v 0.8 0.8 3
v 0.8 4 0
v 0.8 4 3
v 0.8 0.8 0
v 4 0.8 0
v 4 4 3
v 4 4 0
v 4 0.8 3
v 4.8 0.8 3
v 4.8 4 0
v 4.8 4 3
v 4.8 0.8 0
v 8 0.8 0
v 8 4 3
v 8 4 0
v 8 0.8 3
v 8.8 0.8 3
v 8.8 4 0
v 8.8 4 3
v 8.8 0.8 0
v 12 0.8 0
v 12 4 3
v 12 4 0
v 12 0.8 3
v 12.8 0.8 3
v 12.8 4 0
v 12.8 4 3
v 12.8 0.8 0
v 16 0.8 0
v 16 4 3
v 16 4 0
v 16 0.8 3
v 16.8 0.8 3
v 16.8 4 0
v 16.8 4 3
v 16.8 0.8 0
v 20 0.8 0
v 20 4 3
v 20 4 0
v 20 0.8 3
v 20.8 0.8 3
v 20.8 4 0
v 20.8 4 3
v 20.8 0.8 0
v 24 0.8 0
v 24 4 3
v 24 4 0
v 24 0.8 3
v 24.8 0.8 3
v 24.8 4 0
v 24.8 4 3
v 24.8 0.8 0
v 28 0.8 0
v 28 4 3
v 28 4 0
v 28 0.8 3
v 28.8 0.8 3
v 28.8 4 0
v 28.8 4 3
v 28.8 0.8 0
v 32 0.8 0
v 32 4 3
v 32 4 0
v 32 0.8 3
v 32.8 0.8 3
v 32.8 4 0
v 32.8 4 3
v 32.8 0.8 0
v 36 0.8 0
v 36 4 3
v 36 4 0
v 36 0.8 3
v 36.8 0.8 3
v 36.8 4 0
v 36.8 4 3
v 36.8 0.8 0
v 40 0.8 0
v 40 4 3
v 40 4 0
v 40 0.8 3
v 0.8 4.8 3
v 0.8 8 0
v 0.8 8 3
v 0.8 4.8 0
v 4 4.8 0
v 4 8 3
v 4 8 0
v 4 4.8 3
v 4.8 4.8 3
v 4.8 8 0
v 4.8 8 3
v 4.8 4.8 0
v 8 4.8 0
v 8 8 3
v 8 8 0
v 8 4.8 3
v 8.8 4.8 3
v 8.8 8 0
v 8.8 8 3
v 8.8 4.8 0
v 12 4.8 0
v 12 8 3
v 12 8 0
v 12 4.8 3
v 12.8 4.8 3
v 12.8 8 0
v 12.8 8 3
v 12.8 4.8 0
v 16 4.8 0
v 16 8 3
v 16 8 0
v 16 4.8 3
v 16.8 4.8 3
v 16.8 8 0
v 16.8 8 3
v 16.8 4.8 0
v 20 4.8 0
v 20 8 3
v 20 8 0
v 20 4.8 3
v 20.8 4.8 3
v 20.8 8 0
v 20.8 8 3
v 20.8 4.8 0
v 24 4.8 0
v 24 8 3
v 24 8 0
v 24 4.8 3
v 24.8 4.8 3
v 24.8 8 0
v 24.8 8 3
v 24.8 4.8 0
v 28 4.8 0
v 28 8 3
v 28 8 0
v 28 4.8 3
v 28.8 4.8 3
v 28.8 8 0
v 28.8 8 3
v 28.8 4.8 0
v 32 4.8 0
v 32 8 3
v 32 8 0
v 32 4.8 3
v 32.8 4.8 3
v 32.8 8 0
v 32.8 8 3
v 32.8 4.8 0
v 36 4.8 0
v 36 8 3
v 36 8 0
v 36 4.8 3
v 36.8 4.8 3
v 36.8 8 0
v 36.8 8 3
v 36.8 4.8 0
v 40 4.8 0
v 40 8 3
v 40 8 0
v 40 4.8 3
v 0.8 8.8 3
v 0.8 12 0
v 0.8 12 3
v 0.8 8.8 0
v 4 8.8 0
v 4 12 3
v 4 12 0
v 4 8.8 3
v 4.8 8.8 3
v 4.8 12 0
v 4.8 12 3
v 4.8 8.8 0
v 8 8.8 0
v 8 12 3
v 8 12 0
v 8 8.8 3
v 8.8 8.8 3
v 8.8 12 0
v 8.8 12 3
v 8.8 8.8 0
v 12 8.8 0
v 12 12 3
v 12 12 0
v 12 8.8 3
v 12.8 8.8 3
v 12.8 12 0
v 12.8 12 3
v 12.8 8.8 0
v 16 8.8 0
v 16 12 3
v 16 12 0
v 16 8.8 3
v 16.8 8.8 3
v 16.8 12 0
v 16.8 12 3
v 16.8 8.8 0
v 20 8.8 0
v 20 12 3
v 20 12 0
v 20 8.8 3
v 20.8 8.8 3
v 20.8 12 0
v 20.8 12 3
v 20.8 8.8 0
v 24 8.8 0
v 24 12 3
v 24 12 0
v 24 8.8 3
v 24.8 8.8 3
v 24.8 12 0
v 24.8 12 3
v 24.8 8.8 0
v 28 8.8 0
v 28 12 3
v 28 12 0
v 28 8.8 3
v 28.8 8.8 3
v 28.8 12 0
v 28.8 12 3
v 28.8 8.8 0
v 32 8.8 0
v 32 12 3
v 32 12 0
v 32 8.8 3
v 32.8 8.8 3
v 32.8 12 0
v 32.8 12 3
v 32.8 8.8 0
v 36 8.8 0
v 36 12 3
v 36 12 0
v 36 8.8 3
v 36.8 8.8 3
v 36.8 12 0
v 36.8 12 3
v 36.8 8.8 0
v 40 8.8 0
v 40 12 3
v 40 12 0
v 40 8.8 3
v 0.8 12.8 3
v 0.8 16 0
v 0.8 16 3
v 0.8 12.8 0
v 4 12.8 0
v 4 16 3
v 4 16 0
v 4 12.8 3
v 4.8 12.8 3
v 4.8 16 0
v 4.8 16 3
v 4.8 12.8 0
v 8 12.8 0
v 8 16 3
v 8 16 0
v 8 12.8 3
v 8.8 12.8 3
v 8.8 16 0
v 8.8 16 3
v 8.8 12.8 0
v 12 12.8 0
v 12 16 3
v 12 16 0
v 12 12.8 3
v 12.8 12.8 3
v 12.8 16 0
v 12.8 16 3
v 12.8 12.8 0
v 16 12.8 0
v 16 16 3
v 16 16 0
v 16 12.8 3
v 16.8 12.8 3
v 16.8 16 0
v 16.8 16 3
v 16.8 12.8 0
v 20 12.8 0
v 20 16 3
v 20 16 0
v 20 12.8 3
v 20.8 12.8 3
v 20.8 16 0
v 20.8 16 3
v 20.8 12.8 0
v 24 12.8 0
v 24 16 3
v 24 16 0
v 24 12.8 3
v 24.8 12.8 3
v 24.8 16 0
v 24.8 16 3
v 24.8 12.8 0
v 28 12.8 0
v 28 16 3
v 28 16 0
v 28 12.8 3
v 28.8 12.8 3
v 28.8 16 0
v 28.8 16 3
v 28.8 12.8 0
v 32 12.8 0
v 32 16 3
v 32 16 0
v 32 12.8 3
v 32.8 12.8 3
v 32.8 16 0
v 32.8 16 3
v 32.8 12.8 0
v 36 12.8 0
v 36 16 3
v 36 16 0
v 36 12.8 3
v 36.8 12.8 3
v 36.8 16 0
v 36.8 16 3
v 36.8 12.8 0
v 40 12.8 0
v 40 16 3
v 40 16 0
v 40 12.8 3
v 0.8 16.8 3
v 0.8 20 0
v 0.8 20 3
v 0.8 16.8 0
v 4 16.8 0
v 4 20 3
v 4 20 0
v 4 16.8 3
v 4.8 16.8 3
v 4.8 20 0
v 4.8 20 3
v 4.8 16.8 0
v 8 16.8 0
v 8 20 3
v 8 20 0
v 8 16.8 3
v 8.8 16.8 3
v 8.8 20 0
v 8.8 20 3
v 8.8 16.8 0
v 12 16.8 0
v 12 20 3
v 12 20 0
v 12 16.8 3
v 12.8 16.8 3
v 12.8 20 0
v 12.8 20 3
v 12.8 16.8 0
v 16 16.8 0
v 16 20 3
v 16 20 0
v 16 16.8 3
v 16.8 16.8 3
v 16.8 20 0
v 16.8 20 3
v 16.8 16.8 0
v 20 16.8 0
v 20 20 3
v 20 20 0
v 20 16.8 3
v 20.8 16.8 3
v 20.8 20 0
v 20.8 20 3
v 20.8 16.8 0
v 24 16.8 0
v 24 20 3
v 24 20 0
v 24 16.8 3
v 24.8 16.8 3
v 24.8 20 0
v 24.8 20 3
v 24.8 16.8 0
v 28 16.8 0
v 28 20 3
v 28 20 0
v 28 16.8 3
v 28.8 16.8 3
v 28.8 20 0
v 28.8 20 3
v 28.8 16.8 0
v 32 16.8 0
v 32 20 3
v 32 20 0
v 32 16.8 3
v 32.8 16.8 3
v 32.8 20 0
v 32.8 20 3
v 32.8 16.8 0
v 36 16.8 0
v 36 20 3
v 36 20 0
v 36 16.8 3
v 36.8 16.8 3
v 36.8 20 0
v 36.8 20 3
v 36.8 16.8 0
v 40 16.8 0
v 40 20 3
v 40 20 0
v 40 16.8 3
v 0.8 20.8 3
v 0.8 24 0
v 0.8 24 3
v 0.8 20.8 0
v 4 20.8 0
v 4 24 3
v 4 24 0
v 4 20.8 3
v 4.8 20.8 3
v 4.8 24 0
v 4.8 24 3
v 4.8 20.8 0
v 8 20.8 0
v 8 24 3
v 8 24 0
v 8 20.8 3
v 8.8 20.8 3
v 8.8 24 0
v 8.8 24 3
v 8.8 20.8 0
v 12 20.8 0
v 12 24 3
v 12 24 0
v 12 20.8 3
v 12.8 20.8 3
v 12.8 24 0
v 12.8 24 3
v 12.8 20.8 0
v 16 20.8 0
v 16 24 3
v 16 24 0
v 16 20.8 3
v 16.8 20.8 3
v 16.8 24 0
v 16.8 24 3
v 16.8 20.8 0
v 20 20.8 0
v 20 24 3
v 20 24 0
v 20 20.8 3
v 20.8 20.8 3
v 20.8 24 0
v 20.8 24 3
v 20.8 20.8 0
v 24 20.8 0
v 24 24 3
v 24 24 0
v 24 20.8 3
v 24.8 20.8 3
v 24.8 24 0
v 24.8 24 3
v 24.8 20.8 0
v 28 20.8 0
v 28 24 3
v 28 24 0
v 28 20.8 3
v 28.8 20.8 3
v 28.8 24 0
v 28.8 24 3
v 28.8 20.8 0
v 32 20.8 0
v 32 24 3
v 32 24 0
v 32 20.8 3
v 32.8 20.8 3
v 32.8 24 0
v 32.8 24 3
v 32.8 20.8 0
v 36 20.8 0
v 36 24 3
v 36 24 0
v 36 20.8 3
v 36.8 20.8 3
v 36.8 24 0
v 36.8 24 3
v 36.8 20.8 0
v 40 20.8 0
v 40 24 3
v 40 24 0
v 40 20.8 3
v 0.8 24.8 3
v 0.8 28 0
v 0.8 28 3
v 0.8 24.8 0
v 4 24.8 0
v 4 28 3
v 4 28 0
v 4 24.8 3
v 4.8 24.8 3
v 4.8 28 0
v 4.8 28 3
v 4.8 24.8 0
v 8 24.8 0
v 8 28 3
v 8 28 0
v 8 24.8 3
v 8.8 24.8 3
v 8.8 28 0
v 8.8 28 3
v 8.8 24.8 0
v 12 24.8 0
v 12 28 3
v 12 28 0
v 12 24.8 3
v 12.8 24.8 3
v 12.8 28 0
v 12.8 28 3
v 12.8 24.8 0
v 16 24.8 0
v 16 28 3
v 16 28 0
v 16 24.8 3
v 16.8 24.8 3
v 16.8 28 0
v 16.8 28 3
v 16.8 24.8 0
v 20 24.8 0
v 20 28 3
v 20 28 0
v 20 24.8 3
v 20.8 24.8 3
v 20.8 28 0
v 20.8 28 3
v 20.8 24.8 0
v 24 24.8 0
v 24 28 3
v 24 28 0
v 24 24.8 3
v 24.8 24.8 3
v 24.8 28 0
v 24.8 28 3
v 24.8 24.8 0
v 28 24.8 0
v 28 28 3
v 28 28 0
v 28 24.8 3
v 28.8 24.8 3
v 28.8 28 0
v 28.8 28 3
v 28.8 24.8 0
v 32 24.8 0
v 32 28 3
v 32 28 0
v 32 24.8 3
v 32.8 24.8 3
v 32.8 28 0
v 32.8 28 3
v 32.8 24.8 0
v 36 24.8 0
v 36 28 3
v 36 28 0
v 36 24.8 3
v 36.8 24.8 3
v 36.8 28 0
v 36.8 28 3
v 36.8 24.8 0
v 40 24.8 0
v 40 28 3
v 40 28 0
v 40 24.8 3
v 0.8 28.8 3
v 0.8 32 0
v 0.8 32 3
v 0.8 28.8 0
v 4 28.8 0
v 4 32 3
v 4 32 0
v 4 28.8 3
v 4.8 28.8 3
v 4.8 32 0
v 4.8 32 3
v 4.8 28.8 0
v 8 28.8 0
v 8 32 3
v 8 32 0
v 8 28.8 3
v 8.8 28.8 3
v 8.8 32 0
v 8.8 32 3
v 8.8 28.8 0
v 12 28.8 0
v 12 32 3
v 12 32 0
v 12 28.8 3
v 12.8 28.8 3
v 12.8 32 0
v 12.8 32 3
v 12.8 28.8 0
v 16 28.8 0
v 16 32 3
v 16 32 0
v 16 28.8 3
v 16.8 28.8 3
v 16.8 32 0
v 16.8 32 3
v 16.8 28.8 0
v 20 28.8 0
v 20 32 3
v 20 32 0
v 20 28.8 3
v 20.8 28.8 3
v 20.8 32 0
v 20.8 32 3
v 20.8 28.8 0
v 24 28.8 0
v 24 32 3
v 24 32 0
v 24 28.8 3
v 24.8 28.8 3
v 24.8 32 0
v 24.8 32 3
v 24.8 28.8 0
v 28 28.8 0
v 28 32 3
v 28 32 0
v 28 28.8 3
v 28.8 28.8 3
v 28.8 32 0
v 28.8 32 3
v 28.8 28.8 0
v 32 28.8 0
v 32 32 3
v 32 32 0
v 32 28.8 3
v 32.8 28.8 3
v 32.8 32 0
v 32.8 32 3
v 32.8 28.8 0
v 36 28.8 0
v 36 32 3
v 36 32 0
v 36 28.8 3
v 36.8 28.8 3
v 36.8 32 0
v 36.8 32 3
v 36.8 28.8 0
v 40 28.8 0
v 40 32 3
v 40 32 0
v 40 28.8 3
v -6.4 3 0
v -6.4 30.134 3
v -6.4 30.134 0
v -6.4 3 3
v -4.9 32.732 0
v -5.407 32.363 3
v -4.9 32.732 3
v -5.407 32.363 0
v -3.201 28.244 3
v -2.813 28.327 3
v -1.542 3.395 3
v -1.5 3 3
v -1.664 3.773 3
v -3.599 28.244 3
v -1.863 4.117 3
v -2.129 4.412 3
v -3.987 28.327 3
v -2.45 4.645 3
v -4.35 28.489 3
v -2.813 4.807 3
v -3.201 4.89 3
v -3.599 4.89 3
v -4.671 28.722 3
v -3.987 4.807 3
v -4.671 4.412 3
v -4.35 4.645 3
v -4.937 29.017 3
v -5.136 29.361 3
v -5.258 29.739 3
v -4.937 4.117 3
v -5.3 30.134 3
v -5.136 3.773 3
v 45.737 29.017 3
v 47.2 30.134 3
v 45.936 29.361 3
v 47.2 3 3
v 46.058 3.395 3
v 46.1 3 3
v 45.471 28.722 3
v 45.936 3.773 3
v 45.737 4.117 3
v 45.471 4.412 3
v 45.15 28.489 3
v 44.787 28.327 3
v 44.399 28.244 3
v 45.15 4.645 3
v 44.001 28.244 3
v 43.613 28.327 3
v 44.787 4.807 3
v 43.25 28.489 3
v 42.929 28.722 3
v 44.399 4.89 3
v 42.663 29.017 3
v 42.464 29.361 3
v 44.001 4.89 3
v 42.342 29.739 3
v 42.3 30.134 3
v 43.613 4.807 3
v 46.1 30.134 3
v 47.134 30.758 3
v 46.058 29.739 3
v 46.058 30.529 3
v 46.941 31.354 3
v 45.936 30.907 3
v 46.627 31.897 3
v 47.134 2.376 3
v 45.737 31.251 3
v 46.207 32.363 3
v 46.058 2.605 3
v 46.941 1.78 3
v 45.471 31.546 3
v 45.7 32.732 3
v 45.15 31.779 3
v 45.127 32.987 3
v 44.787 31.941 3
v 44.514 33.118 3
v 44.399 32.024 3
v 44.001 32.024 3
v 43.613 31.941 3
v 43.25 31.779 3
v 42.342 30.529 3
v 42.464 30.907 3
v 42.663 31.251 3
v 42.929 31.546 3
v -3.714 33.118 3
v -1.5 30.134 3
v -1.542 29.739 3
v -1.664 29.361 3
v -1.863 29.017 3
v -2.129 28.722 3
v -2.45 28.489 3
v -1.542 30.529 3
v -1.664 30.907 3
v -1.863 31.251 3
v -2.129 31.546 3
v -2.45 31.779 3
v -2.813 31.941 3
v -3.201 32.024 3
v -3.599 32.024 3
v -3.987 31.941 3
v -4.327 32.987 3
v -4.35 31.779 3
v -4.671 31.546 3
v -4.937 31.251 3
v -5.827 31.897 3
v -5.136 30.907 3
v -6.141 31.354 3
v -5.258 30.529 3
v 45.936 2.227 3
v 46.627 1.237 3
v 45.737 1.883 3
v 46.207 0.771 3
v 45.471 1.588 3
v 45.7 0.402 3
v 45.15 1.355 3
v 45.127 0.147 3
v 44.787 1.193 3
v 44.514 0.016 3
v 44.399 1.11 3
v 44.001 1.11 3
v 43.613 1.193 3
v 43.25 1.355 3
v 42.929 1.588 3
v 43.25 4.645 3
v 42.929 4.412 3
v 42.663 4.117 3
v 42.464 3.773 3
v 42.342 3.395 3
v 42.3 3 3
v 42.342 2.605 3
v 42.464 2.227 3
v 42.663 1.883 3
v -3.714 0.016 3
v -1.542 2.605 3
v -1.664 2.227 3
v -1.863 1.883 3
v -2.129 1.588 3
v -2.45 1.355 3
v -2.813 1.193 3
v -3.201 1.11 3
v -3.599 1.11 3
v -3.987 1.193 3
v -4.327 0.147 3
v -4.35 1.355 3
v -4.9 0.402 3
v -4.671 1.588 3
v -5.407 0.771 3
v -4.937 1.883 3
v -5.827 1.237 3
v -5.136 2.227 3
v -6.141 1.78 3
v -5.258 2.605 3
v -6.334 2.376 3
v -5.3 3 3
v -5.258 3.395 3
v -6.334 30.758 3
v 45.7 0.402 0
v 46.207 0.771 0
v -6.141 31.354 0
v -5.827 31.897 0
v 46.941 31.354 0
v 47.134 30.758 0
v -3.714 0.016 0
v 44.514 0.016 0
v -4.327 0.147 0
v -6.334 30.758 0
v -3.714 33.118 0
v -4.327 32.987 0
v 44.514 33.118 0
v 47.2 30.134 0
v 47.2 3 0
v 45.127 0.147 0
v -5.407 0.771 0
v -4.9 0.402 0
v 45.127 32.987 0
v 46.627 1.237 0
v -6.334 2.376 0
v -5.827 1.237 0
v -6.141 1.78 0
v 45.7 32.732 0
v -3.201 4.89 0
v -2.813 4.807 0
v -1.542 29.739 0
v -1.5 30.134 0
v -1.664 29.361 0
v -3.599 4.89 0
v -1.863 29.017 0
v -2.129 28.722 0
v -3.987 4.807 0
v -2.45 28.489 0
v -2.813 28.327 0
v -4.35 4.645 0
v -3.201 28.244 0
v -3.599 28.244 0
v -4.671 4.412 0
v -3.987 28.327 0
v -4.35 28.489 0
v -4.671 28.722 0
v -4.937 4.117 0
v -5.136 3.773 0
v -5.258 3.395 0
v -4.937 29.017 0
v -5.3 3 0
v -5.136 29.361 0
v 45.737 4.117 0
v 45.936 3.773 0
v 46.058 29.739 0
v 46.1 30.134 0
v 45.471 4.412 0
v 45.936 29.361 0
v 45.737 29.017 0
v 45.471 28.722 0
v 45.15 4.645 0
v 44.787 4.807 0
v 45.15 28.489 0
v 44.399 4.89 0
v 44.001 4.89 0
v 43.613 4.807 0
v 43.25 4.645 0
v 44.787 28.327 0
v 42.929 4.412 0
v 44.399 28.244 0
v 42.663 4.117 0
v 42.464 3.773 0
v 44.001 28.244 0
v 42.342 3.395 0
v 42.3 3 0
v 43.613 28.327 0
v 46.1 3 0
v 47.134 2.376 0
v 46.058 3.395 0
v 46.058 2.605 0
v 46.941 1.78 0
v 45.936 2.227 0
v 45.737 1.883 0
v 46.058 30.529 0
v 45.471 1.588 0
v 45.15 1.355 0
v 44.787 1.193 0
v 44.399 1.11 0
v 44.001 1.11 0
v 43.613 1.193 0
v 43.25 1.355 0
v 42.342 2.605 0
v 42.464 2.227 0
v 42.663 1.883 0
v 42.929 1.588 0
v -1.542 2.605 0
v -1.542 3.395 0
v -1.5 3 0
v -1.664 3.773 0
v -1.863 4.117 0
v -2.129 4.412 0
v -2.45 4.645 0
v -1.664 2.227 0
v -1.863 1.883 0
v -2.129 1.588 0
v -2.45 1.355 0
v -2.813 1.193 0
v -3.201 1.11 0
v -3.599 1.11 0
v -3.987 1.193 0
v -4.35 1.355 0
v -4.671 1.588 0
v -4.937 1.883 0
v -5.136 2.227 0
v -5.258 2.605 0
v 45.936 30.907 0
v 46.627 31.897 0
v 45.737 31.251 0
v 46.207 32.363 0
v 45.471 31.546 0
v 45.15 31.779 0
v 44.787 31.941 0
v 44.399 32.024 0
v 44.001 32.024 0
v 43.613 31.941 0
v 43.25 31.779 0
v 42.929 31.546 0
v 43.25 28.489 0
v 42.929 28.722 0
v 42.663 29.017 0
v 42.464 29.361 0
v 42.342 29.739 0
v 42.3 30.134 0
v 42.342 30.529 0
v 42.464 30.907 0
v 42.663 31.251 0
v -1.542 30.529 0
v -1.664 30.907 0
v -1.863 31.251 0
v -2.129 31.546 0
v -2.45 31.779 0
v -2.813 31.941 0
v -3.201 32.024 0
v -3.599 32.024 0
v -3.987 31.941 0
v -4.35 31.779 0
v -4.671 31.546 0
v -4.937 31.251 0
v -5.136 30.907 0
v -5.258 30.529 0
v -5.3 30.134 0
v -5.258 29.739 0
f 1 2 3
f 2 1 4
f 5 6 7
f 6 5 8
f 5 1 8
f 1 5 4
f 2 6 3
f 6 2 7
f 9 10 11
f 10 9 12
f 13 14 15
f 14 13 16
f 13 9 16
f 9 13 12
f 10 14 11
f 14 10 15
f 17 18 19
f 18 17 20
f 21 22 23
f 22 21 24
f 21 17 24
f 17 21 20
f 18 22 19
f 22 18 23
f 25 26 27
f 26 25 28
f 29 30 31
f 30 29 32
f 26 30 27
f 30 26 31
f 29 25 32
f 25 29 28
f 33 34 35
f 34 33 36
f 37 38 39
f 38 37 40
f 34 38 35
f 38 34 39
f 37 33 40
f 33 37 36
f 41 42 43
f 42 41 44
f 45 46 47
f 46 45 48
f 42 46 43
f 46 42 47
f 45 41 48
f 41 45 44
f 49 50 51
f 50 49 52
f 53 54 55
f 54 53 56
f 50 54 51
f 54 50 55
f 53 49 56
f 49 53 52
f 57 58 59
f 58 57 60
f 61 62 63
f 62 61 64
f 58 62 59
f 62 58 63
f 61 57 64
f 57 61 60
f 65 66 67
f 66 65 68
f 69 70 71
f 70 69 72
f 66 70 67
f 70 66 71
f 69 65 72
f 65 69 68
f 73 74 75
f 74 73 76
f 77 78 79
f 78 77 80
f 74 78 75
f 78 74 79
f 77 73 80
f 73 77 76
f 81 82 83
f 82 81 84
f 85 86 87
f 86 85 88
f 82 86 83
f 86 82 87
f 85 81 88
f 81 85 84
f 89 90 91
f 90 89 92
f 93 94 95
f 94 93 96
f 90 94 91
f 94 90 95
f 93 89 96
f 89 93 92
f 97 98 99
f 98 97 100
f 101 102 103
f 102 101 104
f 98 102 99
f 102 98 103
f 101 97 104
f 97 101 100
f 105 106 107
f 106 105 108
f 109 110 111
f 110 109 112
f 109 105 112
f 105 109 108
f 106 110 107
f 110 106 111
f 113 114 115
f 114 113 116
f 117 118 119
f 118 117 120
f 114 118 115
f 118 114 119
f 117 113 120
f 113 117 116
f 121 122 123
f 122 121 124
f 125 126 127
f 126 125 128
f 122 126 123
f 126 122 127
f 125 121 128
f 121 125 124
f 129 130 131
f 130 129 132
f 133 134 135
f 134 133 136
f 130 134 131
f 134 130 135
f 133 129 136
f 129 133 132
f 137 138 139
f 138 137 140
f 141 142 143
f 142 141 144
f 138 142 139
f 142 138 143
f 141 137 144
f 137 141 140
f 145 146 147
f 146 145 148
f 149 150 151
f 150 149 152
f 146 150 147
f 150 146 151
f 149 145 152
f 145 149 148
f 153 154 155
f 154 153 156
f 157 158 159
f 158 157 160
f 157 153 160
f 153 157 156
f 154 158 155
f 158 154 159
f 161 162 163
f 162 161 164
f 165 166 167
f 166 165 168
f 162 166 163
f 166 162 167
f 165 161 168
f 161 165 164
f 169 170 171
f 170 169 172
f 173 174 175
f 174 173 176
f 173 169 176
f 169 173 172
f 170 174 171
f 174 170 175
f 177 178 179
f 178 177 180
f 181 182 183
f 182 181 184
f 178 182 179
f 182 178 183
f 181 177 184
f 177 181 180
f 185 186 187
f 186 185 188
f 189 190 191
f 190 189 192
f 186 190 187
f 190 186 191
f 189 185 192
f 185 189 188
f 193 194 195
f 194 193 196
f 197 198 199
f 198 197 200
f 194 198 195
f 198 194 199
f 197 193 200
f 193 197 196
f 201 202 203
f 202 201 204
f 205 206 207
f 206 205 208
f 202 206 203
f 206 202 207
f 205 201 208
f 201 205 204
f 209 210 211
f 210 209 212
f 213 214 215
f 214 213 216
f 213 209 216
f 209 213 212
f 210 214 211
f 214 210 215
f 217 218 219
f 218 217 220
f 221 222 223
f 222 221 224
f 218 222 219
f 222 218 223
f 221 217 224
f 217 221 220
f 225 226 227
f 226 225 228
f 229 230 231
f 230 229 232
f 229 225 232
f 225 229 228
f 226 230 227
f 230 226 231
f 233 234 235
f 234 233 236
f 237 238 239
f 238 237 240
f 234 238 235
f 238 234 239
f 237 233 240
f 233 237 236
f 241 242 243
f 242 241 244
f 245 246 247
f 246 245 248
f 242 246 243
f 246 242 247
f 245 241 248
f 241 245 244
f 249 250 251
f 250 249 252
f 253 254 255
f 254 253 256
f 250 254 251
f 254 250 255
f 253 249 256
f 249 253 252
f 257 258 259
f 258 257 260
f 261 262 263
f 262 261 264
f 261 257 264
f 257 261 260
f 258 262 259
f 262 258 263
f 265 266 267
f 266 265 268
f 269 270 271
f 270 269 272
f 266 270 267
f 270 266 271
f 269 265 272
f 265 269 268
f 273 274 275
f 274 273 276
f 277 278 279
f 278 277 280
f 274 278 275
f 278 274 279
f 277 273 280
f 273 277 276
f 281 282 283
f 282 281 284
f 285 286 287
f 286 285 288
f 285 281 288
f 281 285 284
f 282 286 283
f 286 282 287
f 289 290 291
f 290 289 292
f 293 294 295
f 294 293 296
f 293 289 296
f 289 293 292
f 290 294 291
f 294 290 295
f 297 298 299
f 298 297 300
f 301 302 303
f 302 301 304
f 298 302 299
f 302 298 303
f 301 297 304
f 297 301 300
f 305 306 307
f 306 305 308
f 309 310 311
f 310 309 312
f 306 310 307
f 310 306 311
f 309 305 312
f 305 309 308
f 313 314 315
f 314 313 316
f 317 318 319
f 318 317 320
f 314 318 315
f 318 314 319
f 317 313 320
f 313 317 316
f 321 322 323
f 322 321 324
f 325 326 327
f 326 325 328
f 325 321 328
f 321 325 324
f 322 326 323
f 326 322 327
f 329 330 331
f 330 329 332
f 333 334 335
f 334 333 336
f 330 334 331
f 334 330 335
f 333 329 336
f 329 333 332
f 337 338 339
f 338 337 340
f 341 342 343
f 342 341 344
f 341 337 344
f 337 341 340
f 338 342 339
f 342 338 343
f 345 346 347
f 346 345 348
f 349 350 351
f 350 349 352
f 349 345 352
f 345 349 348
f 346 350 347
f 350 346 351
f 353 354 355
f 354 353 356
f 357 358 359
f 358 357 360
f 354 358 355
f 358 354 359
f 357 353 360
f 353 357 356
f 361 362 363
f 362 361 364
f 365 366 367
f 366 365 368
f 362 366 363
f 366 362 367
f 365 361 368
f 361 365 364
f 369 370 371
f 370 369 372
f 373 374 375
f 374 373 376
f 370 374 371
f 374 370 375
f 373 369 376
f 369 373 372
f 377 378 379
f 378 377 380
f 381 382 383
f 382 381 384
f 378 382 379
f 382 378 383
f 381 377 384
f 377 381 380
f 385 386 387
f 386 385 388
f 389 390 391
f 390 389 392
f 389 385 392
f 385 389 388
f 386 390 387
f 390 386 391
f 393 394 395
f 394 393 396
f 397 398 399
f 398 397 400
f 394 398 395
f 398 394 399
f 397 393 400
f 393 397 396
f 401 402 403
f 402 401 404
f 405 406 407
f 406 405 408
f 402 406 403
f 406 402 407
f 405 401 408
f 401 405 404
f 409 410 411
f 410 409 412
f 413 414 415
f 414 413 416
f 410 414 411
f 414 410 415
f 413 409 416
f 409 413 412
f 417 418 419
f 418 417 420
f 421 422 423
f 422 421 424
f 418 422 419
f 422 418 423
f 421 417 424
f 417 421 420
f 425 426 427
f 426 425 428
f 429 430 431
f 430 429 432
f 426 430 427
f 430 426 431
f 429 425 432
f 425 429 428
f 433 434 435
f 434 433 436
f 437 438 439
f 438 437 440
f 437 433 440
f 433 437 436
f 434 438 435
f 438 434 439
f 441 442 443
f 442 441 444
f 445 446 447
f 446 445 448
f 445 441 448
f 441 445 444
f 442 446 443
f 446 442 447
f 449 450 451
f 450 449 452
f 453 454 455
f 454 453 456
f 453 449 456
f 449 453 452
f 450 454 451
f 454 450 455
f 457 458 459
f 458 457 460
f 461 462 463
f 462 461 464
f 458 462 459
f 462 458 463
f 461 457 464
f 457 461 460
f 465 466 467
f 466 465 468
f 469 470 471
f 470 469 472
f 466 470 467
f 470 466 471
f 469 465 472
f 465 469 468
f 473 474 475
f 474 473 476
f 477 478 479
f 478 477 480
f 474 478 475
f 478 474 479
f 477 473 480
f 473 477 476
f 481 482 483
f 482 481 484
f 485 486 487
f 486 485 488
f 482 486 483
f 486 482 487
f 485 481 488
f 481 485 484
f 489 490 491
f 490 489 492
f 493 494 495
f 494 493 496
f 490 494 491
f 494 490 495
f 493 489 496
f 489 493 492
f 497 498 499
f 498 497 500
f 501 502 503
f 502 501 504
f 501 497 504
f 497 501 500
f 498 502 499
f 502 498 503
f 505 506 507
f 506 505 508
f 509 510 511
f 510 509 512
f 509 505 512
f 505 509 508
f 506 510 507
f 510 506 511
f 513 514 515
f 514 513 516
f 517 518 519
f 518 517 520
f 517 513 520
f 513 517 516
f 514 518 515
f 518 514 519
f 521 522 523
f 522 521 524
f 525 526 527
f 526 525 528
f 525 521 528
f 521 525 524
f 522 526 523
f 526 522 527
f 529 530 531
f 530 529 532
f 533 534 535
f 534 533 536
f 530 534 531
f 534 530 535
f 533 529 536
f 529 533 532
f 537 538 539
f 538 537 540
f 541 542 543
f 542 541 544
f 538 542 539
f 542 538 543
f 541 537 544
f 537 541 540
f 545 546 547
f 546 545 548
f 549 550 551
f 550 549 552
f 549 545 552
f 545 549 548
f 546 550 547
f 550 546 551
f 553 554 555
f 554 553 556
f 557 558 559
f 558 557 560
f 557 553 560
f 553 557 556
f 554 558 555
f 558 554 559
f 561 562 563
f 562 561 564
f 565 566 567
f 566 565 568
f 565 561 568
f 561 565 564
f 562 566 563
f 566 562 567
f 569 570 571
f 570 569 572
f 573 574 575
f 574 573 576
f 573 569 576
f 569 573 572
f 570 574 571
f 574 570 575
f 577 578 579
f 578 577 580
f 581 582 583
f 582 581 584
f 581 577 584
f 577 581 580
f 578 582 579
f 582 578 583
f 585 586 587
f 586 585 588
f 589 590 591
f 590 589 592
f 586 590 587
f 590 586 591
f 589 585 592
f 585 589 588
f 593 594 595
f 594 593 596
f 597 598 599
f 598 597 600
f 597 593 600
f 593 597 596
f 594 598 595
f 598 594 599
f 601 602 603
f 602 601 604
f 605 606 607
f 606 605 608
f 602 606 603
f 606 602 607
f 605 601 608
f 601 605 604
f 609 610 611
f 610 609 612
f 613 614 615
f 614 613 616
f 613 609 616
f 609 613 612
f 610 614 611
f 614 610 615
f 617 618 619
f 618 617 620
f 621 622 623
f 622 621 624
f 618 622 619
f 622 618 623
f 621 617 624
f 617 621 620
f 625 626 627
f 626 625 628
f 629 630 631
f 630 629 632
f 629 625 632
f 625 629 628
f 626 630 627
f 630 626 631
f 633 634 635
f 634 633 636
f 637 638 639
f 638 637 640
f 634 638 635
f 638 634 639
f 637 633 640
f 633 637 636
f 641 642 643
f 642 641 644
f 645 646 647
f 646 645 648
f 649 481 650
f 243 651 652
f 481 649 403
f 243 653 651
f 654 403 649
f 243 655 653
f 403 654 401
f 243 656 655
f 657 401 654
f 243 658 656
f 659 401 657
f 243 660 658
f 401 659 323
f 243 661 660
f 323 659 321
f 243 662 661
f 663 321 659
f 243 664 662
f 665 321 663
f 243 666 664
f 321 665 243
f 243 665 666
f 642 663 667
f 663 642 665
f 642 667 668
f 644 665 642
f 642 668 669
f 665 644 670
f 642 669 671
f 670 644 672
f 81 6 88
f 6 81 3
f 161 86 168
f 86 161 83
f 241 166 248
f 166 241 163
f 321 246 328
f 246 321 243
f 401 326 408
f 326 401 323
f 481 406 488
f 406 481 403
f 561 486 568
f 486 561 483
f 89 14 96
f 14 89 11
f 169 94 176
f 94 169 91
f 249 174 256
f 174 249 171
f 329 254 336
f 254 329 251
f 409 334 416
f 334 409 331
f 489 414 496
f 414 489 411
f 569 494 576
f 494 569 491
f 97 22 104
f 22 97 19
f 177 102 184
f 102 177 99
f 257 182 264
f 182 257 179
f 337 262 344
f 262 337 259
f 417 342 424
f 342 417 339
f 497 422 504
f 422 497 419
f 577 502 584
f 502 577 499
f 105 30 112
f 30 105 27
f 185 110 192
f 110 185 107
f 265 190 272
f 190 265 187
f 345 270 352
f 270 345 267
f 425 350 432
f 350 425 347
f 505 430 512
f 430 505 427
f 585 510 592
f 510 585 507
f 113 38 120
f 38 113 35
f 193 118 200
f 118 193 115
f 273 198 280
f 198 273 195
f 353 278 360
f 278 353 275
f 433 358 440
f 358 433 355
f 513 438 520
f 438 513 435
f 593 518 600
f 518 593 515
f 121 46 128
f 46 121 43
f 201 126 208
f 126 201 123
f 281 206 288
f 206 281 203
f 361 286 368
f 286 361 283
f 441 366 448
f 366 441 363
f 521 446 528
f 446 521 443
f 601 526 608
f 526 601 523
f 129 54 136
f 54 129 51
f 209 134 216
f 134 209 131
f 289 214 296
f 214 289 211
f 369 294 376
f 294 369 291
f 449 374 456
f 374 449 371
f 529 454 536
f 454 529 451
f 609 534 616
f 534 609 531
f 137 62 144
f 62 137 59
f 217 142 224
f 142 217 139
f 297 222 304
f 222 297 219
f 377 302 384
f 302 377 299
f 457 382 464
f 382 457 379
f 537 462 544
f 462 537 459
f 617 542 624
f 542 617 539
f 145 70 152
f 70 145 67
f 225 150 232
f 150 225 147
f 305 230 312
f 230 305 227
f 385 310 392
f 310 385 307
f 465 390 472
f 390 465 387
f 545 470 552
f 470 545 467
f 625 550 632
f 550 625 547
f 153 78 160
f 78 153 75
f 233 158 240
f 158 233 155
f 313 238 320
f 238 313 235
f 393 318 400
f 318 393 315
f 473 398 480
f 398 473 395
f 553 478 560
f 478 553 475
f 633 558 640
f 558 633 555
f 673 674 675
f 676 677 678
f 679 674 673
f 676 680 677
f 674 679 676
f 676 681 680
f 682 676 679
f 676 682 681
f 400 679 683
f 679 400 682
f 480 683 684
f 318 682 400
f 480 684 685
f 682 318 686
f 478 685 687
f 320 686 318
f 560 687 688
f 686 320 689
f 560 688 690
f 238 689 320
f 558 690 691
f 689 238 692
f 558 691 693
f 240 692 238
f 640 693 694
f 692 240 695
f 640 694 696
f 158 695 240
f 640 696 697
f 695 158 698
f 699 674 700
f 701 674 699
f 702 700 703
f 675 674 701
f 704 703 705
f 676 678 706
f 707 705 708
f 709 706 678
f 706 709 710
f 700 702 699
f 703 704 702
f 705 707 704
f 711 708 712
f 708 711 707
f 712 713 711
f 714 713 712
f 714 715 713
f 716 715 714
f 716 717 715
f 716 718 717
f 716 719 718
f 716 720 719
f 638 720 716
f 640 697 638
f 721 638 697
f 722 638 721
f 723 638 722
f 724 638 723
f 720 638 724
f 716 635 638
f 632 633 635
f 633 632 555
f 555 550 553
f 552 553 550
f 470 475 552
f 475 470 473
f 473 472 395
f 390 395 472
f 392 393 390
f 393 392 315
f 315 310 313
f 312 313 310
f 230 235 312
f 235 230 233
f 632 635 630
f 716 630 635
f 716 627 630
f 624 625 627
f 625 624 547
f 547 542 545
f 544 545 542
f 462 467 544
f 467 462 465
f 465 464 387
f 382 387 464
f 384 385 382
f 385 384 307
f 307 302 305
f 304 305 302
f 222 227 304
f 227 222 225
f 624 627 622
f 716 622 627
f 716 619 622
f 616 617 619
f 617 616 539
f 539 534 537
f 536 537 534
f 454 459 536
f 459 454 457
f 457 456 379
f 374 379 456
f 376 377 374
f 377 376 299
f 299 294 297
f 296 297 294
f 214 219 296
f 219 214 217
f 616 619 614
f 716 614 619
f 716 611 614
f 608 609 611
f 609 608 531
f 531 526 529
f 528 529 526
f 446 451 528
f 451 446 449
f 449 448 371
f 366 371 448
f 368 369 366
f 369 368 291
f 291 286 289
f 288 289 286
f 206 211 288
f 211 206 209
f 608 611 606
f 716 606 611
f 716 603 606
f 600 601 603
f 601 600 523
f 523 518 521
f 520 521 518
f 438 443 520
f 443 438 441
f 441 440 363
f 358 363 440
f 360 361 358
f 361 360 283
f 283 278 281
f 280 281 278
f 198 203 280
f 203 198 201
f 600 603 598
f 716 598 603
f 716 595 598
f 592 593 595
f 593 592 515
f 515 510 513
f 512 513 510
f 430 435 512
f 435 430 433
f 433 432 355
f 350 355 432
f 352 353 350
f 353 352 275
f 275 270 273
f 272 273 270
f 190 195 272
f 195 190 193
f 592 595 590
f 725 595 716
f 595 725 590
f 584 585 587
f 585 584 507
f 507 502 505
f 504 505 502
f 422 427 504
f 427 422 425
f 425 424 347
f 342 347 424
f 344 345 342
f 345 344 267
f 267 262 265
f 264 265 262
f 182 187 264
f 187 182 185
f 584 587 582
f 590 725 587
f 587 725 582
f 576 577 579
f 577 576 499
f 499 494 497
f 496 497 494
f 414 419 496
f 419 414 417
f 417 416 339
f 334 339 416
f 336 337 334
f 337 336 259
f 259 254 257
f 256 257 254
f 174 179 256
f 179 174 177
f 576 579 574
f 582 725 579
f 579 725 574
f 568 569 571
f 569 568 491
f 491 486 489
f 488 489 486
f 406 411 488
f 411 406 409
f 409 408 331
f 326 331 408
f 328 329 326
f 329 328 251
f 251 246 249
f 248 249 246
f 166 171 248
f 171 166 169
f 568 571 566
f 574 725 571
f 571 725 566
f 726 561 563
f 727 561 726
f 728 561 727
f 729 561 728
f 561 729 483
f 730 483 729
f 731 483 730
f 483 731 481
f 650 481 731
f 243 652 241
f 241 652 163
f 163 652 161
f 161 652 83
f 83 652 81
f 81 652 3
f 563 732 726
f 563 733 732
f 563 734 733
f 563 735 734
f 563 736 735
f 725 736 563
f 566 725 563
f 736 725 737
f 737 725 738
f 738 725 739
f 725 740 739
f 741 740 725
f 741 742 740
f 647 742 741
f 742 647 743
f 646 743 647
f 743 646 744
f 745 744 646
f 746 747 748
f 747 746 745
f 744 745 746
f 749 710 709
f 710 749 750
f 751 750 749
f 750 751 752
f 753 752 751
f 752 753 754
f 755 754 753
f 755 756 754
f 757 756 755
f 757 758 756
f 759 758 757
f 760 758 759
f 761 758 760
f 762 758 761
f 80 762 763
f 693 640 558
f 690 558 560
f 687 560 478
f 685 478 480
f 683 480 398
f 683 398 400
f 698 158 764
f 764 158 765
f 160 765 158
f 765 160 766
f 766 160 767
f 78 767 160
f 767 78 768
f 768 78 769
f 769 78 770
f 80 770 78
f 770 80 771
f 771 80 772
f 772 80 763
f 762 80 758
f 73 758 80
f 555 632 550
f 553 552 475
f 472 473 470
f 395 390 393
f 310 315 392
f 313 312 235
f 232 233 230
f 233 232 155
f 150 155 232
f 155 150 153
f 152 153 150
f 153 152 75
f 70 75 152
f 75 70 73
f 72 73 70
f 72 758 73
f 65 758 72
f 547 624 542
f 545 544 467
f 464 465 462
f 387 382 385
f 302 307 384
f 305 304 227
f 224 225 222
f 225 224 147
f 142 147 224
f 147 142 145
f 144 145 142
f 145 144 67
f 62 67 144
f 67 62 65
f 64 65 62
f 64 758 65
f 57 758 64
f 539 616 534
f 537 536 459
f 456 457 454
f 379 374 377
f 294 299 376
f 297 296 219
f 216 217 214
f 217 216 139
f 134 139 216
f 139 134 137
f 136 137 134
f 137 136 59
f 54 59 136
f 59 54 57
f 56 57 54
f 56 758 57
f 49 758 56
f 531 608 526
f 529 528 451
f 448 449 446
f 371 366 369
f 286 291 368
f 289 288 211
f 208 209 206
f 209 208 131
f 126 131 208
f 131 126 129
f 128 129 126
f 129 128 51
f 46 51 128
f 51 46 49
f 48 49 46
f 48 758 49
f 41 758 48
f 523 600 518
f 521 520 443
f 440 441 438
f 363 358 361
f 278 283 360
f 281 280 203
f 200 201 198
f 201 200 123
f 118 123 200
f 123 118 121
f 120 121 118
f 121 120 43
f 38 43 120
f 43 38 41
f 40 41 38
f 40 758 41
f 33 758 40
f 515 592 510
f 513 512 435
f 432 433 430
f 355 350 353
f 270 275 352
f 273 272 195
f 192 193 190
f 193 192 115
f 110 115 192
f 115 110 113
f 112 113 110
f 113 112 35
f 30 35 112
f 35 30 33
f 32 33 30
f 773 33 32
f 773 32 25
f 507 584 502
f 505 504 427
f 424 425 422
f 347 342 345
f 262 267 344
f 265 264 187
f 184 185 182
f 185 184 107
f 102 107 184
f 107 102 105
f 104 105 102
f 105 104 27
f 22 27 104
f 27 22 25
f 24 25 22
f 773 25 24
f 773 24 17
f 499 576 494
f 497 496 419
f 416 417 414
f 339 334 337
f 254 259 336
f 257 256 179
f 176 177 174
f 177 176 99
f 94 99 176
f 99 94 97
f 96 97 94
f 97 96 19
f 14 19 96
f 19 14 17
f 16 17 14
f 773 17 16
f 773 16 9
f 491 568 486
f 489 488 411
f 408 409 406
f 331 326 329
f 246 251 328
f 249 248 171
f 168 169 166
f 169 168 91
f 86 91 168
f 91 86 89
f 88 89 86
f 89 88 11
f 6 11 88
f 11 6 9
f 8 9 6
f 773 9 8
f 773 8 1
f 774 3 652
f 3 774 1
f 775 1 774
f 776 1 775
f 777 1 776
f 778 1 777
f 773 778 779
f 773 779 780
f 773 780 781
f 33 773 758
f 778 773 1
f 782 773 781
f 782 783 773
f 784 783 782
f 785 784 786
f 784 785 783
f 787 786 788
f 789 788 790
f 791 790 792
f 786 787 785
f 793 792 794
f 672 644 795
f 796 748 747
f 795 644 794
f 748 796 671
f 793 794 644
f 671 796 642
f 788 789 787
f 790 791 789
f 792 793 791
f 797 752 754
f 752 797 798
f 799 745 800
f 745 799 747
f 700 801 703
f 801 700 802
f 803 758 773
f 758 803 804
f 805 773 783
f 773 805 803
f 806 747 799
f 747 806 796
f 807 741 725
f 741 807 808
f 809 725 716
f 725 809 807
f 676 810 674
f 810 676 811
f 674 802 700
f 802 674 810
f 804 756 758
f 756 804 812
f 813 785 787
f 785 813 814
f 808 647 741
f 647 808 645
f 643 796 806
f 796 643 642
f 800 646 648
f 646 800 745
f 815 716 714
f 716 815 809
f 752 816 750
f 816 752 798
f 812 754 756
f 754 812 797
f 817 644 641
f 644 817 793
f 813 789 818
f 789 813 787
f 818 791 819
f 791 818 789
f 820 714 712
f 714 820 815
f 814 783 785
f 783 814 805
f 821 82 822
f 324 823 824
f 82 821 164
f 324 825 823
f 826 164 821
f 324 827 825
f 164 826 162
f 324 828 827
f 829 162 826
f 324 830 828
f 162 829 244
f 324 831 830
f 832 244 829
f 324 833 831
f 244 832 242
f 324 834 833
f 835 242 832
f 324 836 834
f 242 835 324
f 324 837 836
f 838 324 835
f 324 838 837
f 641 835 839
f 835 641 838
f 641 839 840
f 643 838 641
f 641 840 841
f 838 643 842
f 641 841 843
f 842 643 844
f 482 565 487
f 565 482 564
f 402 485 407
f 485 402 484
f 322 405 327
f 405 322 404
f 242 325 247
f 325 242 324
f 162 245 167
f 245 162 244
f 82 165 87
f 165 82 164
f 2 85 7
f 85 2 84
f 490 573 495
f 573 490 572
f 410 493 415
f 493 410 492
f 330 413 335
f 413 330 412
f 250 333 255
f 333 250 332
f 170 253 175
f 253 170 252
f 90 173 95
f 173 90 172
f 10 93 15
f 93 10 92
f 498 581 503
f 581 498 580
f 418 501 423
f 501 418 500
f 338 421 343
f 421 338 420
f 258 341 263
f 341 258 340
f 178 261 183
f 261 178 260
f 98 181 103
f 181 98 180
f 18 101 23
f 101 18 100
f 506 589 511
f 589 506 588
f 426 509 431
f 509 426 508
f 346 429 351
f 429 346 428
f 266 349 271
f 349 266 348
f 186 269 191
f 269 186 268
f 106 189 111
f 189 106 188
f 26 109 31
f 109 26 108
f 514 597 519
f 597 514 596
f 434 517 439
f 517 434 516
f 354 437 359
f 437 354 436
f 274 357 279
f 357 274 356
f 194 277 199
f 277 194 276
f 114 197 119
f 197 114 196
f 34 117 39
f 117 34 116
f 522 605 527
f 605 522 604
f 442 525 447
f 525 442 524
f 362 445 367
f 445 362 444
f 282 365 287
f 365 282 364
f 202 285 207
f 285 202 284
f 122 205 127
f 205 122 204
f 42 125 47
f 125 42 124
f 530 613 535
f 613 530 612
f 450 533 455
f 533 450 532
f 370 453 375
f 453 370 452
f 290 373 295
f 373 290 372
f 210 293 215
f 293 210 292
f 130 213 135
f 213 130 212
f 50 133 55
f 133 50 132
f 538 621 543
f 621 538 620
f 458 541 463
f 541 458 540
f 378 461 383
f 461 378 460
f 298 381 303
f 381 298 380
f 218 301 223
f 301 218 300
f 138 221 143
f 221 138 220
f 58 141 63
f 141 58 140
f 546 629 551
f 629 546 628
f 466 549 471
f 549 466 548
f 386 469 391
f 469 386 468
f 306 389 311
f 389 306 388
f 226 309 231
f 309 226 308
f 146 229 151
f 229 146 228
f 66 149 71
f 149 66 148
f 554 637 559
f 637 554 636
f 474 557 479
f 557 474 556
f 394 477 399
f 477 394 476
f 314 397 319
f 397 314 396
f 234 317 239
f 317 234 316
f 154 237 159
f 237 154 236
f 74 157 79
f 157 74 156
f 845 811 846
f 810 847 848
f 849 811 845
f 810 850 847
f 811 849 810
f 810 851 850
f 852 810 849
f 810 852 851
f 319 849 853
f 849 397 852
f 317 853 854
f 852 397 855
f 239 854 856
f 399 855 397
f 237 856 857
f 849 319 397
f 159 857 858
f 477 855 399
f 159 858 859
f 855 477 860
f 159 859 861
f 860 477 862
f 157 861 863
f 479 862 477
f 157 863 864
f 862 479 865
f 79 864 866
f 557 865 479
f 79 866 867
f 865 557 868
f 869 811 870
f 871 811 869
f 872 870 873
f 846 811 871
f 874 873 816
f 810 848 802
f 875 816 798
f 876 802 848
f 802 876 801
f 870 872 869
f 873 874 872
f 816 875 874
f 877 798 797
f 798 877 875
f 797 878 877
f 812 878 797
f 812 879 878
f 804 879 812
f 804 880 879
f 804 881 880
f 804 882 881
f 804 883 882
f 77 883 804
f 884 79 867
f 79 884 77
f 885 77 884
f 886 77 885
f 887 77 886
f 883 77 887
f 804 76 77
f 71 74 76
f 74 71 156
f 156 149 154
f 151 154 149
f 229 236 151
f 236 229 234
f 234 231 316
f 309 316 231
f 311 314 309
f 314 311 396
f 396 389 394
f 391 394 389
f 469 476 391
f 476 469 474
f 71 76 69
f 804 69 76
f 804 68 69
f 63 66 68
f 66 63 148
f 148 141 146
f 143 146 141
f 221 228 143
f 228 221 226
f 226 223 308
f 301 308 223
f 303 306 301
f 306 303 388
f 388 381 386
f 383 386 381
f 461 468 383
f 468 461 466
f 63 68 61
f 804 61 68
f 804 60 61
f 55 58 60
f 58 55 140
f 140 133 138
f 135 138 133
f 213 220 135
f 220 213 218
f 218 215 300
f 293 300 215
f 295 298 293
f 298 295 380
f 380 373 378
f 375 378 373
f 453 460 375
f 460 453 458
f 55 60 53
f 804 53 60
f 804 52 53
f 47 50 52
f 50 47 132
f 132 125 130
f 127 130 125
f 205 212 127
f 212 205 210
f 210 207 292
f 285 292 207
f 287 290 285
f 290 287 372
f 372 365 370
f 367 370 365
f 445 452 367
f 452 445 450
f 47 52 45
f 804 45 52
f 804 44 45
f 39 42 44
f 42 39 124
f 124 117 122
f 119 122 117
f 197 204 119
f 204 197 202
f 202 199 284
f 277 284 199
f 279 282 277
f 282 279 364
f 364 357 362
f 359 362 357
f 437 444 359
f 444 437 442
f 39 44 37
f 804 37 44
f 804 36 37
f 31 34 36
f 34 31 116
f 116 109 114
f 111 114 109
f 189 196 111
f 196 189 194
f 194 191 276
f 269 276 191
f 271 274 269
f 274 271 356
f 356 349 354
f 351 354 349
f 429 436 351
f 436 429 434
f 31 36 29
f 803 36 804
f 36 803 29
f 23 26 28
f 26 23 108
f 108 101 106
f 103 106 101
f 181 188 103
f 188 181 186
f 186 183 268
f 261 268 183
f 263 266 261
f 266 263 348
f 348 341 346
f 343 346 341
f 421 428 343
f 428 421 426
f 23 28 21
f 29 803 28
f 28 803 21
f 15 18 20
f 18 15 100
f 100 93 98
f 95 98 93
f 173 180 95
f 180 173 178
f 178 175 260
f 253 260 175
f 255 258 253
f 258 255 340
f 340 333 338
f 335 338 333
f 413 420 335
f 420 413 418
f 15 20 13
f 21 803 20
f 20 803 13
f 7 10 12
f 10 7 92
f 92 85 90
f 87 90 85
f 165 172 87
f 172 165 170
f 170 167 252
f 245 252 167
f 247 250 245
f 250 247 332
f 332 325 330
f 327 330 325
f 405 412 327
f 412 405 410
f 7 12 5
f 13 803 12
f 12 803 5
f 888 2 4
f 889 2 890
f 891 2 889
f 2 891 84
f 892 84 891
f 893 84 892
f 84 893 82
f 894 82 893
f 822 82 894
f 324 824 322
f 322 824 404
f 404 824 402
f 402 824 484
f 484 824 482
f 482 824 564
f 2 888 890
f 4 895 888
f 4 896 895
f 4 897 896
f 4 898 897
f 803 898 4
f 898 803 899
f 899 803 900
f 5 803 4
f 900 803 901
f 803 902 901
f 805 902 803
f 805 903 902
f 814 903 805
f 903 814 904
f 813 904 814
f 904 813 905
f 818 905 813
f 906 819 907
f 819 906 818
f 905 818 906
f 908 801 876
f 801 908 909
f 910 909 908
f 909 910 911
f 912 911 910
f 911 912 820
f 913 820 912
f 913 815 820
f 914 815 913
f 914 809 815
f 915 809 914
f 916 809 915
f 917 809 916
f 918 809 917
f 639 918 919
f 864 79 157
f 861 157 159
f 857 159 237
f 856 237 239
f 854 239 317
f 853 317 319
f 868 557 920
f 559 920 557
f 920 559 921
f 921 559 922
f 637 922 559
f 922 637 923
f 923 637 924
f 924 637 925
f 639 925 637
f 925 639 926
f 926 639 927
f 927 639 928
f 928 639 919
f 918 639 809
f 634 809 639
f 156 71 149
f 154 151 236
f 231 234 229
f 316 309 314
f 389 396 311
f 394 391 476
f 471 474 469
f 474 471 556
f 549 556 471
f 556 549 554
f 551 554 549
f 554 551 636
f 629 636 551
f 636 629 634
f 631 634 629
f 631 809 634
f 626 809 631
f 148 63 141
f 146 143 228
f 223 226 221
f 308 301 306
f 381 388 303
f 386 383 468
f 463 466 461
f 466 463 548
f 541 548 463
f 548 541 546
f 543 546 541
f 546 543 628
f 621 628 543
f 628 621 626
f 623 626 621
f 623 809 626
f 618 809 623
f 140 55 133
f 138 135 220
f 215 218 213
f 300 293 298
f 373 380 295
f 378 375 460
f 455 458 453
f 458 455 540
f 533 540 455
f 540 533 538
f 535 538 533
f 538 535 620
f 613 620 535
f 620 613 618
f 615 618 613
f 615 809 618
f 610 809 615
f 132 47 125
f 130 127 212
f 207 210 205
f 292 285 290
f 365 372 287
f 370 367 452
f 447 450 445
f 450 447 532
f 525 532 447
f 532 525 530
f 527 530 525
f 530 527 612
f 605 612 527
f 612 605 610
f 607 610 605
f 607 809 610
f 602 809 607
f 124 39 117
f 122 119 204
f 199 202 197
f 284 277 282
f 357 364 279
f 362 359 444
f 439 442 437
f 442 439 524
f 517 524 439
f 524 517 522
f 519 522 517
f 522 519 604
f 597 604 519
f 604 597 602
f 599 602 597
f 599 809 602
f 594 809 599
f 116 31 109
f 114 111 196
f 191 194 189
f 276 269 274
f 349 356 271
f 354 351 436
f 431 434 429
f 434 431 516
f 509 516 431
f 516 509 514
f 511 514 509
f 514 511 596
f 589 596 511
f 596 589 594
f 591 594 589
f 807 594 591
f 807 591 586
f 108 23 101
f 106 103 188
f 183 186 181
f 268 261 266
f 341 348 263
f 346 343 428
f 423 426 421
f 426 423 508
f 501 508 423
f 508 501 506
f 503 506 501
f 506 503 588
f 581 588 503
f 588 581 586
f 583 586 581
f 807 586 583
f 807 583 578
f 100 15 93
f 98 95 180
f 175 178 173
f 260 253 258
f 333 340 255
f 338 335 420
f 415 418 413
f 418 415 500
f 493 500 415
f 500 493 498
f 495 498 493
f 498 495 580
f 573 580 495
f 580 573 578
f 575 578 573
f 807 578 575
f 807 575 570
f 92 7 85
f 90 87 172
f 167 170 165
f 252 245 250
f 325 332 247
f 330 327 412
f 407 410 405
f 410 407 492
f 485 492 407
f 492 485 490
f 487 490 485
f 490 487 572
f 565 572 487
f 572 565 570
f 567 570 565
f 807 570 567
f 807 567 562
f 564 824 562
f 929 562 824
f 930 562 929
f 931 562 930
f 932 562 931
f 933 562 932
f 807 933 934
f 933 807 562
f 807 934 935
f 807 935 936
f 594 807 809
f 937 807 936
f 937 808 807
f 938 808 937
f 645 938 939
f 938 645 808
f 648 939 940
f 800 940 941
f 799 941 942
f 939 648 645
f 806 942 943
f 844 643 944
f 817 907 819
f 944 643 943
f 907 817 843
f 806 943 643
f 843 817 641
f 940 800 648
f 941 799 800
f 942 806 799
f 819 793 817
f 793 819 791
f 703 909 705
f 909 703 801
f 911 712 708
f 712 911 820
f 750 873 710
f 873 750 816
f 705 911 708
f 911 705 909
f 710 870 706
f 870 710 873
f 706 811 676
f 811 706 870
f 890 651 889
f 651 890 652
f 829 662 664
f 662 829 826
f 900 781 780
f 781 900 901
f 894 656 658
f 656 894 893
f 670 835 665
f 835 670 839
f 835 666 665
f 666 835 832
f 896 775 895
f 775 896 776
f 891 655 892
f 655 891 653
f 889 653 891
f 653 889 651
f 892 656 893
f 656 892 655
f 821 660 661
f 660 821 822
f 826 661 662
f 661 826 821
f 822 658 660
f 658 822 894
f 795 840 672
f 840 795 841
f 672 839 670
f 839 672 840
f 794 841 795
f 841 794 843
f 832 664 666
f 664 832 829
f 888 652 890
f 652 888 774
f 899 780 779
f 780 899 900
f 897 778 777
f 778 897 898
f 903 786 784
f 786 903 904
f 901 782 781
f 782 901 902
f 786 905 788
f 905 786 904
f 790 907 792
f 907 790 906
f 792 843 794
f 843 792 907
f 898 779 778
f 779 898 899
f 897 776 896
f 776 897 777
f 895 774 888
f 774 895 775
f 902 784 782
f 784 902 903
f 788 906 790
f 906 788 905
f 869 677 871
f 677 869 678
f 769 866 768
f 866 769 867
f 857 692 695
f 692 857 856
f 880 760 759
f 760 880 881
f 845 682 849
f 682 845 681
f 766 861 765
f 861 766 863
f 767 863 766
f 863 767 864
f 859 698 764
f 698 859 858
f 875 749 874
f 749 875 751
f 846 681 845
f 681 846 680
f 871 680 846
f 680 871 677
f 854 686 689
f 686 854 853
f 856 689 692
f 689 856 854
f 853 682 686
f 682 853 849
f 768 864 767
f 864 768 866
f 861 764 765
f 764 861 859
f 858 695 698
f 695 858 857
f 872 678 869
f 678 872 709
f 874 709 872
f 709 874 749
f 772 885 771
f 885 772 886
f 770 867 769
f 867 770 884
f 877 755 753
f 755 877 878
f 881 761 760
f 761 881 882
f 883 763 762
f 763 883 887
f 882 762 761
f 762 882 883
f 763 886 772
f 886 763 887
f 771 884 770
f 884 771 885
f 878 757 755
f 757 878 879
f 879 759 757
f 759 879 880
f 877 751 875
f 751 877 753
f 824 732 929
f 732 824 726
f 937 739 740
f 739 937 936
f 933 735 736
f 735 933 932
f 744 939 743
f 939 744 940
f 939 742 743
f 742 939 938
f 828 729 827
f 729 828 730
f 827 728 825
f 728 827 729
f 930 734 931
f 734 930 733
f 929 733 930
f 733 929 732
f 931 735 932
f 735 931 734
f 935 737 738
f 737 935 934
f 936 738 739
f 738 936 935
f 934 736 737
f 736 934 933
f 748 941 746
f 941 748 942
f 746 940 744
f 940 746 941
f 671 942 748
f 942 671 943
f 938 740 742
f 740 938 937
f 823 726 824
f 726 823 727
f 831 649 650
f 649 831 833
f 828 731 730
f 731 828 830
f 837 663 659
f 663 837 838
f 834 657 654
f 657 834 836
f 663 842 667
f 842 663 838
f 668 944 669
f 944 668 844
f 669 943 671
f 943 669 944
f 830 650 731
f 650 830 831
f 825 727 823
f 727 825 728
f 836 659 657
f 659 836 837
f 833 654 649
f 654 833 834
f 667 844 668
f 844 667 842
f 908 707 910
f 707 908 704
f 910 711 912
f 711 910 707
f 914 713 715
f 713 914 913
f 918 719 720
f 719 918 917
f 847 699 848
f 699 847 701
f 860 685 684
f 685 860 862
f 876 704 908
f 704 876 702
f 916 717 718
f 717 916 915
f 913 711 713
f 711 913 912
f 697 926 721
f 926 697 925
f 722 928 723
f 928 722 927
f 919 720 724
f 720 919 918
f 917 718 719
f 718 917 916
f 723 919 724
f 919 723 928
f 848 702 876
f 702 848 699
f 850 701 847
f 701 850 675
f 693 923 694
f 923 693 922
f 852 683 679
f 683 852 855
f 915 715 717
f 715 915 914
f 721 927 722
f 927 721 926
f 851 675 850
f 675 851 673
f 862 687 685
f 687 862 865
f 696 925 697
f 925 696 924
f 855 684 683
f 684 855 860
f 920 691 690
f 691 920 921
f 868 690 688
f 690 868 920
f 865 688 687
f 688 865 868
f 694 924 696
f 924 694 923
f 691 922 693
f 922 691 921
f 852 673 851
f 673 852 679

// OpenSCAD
// Pixel separator for a LED matrix - (c) Bertrand Le Roy 2023

// Minimum size
$fs = 0.1;

// Number of rows
rows = 8;

// Number of columns
columns = 10;

// Pixel size
pixel_size = 4;

// Wall thickness
wall_thickness = 0.8;

// Height
height = 3;

// Anchor height
anchor_height = 0;

// Screw hole diameter
screw_hole_diameter = 3.8;

// Screw head diameter
screw_head_diameter = 6;

// Screw distance from matrix
screw_distance = 3.4;

// Top margin
top_margin = 0.334;

echo("Total height: ", rows * pixel_size + wall_thickness + top_margin);
echo("Total width: ", columns * pixel_size + 2 * screw_distance + wall_thickness);

union() {
    difference() {
        union() {
            hull() {
                translate([-screw_distance, screw_head_diameter / 2, 0])
                    cylinder(r = screw_head_diameter / 2, h = height);
                translate([columns * pixel_size + screw_distance + wall_thickness, screw_head_diameter / 2, 0])
                    cylinder(r = screw_head_diameter / 2, h = height);
                translate([-screw_distance, rows * pixel_size - screw_head_diameter / 2 + wall_thickness + top_margin, 0])
                    cylinder(r = screw_head_diameter / 2, h = height);
                translate([columns * pixel_size + screw_distance + wall_thickness, rows * pixel_size - screw_head_diameter / 2 + wall_thickness + top_margin, 0])
                    cylinder(r = screw_head_diameter / 2, h = height);
            }
        }
        for (row = [0 : rows - 1]) {
            for (column = [0 : columns - 1]) {
                translate([column * pixel_size + wall_thickness, row * pixel_size + wall_thickness, -1])
                    cube([pixel_size - wall_thickness, pixel_size - wall_thickness, height + 2]);
            }
        }
        translate([-screw_distance, screw_head_diameter / 2, -1])
            cylinder(r = screw_hole_diameter / 2, h = height + 2);
        translate([columns * pixel_size + screw_distance + wall_thickness, screw_head_diameter / 2, -1])
            cylinder(r = screw_hole_diameter / 2, h = height + 2);
        translate([-screw_distance, rows * pixel_size - screw_head_diameter / 2 + wall_thickness + top_margin, -1])
            cylinder(r = screw_hole_diameter / 2, h = height + 2);
        translate([columns * pixel_size + screw_distance + wall_thickness, rows * pixel_size - screw_head_diameter / 2 + wall_thickness + top_margin, -1])
            cylinder(r = screw_hole_diameter / 2, h = height + 2);
    }
    anchor_radius = wall_thickness * sqrt(2) / (sqrt(2) + 1);
    translate([anchor_radius, anchor_radius, height])
        cylinder(r = anchor_radius, h = anchor_height);
    translate([columns * pixel_size - anchor_radius + wall_thickness, anchor_radius, height])
        cylinder(r = anchor_radius, h = anchor_height);
    translate([columns * pixel_size - anchor_radius + wall_thickness, rows * pixel_size - anchor_radius + wall_thickness, height])
        cylinder(r = anchor_radius, h = anchor_height);
    translate([anchor_radius, rows * pixel_size - anchor_radius + wall_thickness, height])
        cylinder(r = anchor_radius, h = anchor_height);
}
